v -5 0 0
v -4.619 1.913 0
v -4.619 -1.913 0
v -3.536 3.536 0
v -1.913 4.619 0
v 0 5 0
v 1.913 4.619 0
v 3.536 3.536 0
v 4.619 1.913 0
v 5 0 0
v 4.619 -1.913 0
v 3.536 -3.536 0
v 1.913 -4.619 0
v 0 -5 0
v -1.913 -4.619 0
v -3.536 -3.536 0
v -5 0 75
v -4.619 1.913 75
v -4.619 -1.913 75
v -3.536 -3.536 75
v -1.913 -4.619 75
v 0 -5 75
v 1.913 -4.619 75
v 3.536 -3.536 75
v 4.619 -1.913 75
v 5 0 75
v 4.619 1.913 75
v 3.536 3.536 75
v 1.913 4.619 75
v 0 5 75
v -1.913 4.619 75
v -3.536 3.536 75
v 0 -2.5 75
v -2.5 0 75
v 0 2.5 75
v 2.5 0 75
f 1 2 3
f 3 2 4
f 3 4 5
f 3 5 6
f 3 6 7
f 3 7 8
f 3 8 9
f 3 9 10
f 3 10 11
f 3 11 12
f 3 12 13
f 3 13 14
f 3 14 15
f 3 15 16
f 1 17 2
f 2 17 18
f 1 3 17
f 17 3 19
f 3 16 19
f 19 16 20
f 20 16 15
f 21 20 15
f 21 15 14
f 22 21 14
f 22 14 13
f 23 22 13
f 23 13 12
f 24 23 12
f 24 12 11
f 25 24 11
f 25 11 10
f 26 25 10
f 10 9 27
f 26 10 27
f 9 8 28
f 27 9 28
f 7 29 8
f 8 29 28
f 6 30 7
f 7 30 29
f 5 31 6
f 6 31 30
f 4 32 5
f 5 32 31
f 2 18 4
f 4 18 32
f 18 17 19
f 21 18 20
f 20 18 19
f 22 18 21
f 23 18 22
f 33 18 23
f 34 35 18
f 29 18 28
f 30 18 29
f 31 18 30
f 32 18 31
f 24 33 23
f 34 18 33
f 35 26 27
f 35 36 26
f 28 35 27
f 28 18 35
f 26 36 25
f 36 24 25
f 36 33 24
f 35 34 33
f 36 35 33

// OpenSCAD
//110
pegHeight = 0;
totalHeight = 75;
legRadius = 5;


difference(){
	cylinder(r=legRadius, h=totalHeight);
	translate([0,0,totalHeight-pegHeight])
	difference(){
		cylinder(r=legRadius+1, h=pegHeight+1);
		cylinder(r=legRadius/2, h=pegHeight+1, $fn=4);
	}
}
